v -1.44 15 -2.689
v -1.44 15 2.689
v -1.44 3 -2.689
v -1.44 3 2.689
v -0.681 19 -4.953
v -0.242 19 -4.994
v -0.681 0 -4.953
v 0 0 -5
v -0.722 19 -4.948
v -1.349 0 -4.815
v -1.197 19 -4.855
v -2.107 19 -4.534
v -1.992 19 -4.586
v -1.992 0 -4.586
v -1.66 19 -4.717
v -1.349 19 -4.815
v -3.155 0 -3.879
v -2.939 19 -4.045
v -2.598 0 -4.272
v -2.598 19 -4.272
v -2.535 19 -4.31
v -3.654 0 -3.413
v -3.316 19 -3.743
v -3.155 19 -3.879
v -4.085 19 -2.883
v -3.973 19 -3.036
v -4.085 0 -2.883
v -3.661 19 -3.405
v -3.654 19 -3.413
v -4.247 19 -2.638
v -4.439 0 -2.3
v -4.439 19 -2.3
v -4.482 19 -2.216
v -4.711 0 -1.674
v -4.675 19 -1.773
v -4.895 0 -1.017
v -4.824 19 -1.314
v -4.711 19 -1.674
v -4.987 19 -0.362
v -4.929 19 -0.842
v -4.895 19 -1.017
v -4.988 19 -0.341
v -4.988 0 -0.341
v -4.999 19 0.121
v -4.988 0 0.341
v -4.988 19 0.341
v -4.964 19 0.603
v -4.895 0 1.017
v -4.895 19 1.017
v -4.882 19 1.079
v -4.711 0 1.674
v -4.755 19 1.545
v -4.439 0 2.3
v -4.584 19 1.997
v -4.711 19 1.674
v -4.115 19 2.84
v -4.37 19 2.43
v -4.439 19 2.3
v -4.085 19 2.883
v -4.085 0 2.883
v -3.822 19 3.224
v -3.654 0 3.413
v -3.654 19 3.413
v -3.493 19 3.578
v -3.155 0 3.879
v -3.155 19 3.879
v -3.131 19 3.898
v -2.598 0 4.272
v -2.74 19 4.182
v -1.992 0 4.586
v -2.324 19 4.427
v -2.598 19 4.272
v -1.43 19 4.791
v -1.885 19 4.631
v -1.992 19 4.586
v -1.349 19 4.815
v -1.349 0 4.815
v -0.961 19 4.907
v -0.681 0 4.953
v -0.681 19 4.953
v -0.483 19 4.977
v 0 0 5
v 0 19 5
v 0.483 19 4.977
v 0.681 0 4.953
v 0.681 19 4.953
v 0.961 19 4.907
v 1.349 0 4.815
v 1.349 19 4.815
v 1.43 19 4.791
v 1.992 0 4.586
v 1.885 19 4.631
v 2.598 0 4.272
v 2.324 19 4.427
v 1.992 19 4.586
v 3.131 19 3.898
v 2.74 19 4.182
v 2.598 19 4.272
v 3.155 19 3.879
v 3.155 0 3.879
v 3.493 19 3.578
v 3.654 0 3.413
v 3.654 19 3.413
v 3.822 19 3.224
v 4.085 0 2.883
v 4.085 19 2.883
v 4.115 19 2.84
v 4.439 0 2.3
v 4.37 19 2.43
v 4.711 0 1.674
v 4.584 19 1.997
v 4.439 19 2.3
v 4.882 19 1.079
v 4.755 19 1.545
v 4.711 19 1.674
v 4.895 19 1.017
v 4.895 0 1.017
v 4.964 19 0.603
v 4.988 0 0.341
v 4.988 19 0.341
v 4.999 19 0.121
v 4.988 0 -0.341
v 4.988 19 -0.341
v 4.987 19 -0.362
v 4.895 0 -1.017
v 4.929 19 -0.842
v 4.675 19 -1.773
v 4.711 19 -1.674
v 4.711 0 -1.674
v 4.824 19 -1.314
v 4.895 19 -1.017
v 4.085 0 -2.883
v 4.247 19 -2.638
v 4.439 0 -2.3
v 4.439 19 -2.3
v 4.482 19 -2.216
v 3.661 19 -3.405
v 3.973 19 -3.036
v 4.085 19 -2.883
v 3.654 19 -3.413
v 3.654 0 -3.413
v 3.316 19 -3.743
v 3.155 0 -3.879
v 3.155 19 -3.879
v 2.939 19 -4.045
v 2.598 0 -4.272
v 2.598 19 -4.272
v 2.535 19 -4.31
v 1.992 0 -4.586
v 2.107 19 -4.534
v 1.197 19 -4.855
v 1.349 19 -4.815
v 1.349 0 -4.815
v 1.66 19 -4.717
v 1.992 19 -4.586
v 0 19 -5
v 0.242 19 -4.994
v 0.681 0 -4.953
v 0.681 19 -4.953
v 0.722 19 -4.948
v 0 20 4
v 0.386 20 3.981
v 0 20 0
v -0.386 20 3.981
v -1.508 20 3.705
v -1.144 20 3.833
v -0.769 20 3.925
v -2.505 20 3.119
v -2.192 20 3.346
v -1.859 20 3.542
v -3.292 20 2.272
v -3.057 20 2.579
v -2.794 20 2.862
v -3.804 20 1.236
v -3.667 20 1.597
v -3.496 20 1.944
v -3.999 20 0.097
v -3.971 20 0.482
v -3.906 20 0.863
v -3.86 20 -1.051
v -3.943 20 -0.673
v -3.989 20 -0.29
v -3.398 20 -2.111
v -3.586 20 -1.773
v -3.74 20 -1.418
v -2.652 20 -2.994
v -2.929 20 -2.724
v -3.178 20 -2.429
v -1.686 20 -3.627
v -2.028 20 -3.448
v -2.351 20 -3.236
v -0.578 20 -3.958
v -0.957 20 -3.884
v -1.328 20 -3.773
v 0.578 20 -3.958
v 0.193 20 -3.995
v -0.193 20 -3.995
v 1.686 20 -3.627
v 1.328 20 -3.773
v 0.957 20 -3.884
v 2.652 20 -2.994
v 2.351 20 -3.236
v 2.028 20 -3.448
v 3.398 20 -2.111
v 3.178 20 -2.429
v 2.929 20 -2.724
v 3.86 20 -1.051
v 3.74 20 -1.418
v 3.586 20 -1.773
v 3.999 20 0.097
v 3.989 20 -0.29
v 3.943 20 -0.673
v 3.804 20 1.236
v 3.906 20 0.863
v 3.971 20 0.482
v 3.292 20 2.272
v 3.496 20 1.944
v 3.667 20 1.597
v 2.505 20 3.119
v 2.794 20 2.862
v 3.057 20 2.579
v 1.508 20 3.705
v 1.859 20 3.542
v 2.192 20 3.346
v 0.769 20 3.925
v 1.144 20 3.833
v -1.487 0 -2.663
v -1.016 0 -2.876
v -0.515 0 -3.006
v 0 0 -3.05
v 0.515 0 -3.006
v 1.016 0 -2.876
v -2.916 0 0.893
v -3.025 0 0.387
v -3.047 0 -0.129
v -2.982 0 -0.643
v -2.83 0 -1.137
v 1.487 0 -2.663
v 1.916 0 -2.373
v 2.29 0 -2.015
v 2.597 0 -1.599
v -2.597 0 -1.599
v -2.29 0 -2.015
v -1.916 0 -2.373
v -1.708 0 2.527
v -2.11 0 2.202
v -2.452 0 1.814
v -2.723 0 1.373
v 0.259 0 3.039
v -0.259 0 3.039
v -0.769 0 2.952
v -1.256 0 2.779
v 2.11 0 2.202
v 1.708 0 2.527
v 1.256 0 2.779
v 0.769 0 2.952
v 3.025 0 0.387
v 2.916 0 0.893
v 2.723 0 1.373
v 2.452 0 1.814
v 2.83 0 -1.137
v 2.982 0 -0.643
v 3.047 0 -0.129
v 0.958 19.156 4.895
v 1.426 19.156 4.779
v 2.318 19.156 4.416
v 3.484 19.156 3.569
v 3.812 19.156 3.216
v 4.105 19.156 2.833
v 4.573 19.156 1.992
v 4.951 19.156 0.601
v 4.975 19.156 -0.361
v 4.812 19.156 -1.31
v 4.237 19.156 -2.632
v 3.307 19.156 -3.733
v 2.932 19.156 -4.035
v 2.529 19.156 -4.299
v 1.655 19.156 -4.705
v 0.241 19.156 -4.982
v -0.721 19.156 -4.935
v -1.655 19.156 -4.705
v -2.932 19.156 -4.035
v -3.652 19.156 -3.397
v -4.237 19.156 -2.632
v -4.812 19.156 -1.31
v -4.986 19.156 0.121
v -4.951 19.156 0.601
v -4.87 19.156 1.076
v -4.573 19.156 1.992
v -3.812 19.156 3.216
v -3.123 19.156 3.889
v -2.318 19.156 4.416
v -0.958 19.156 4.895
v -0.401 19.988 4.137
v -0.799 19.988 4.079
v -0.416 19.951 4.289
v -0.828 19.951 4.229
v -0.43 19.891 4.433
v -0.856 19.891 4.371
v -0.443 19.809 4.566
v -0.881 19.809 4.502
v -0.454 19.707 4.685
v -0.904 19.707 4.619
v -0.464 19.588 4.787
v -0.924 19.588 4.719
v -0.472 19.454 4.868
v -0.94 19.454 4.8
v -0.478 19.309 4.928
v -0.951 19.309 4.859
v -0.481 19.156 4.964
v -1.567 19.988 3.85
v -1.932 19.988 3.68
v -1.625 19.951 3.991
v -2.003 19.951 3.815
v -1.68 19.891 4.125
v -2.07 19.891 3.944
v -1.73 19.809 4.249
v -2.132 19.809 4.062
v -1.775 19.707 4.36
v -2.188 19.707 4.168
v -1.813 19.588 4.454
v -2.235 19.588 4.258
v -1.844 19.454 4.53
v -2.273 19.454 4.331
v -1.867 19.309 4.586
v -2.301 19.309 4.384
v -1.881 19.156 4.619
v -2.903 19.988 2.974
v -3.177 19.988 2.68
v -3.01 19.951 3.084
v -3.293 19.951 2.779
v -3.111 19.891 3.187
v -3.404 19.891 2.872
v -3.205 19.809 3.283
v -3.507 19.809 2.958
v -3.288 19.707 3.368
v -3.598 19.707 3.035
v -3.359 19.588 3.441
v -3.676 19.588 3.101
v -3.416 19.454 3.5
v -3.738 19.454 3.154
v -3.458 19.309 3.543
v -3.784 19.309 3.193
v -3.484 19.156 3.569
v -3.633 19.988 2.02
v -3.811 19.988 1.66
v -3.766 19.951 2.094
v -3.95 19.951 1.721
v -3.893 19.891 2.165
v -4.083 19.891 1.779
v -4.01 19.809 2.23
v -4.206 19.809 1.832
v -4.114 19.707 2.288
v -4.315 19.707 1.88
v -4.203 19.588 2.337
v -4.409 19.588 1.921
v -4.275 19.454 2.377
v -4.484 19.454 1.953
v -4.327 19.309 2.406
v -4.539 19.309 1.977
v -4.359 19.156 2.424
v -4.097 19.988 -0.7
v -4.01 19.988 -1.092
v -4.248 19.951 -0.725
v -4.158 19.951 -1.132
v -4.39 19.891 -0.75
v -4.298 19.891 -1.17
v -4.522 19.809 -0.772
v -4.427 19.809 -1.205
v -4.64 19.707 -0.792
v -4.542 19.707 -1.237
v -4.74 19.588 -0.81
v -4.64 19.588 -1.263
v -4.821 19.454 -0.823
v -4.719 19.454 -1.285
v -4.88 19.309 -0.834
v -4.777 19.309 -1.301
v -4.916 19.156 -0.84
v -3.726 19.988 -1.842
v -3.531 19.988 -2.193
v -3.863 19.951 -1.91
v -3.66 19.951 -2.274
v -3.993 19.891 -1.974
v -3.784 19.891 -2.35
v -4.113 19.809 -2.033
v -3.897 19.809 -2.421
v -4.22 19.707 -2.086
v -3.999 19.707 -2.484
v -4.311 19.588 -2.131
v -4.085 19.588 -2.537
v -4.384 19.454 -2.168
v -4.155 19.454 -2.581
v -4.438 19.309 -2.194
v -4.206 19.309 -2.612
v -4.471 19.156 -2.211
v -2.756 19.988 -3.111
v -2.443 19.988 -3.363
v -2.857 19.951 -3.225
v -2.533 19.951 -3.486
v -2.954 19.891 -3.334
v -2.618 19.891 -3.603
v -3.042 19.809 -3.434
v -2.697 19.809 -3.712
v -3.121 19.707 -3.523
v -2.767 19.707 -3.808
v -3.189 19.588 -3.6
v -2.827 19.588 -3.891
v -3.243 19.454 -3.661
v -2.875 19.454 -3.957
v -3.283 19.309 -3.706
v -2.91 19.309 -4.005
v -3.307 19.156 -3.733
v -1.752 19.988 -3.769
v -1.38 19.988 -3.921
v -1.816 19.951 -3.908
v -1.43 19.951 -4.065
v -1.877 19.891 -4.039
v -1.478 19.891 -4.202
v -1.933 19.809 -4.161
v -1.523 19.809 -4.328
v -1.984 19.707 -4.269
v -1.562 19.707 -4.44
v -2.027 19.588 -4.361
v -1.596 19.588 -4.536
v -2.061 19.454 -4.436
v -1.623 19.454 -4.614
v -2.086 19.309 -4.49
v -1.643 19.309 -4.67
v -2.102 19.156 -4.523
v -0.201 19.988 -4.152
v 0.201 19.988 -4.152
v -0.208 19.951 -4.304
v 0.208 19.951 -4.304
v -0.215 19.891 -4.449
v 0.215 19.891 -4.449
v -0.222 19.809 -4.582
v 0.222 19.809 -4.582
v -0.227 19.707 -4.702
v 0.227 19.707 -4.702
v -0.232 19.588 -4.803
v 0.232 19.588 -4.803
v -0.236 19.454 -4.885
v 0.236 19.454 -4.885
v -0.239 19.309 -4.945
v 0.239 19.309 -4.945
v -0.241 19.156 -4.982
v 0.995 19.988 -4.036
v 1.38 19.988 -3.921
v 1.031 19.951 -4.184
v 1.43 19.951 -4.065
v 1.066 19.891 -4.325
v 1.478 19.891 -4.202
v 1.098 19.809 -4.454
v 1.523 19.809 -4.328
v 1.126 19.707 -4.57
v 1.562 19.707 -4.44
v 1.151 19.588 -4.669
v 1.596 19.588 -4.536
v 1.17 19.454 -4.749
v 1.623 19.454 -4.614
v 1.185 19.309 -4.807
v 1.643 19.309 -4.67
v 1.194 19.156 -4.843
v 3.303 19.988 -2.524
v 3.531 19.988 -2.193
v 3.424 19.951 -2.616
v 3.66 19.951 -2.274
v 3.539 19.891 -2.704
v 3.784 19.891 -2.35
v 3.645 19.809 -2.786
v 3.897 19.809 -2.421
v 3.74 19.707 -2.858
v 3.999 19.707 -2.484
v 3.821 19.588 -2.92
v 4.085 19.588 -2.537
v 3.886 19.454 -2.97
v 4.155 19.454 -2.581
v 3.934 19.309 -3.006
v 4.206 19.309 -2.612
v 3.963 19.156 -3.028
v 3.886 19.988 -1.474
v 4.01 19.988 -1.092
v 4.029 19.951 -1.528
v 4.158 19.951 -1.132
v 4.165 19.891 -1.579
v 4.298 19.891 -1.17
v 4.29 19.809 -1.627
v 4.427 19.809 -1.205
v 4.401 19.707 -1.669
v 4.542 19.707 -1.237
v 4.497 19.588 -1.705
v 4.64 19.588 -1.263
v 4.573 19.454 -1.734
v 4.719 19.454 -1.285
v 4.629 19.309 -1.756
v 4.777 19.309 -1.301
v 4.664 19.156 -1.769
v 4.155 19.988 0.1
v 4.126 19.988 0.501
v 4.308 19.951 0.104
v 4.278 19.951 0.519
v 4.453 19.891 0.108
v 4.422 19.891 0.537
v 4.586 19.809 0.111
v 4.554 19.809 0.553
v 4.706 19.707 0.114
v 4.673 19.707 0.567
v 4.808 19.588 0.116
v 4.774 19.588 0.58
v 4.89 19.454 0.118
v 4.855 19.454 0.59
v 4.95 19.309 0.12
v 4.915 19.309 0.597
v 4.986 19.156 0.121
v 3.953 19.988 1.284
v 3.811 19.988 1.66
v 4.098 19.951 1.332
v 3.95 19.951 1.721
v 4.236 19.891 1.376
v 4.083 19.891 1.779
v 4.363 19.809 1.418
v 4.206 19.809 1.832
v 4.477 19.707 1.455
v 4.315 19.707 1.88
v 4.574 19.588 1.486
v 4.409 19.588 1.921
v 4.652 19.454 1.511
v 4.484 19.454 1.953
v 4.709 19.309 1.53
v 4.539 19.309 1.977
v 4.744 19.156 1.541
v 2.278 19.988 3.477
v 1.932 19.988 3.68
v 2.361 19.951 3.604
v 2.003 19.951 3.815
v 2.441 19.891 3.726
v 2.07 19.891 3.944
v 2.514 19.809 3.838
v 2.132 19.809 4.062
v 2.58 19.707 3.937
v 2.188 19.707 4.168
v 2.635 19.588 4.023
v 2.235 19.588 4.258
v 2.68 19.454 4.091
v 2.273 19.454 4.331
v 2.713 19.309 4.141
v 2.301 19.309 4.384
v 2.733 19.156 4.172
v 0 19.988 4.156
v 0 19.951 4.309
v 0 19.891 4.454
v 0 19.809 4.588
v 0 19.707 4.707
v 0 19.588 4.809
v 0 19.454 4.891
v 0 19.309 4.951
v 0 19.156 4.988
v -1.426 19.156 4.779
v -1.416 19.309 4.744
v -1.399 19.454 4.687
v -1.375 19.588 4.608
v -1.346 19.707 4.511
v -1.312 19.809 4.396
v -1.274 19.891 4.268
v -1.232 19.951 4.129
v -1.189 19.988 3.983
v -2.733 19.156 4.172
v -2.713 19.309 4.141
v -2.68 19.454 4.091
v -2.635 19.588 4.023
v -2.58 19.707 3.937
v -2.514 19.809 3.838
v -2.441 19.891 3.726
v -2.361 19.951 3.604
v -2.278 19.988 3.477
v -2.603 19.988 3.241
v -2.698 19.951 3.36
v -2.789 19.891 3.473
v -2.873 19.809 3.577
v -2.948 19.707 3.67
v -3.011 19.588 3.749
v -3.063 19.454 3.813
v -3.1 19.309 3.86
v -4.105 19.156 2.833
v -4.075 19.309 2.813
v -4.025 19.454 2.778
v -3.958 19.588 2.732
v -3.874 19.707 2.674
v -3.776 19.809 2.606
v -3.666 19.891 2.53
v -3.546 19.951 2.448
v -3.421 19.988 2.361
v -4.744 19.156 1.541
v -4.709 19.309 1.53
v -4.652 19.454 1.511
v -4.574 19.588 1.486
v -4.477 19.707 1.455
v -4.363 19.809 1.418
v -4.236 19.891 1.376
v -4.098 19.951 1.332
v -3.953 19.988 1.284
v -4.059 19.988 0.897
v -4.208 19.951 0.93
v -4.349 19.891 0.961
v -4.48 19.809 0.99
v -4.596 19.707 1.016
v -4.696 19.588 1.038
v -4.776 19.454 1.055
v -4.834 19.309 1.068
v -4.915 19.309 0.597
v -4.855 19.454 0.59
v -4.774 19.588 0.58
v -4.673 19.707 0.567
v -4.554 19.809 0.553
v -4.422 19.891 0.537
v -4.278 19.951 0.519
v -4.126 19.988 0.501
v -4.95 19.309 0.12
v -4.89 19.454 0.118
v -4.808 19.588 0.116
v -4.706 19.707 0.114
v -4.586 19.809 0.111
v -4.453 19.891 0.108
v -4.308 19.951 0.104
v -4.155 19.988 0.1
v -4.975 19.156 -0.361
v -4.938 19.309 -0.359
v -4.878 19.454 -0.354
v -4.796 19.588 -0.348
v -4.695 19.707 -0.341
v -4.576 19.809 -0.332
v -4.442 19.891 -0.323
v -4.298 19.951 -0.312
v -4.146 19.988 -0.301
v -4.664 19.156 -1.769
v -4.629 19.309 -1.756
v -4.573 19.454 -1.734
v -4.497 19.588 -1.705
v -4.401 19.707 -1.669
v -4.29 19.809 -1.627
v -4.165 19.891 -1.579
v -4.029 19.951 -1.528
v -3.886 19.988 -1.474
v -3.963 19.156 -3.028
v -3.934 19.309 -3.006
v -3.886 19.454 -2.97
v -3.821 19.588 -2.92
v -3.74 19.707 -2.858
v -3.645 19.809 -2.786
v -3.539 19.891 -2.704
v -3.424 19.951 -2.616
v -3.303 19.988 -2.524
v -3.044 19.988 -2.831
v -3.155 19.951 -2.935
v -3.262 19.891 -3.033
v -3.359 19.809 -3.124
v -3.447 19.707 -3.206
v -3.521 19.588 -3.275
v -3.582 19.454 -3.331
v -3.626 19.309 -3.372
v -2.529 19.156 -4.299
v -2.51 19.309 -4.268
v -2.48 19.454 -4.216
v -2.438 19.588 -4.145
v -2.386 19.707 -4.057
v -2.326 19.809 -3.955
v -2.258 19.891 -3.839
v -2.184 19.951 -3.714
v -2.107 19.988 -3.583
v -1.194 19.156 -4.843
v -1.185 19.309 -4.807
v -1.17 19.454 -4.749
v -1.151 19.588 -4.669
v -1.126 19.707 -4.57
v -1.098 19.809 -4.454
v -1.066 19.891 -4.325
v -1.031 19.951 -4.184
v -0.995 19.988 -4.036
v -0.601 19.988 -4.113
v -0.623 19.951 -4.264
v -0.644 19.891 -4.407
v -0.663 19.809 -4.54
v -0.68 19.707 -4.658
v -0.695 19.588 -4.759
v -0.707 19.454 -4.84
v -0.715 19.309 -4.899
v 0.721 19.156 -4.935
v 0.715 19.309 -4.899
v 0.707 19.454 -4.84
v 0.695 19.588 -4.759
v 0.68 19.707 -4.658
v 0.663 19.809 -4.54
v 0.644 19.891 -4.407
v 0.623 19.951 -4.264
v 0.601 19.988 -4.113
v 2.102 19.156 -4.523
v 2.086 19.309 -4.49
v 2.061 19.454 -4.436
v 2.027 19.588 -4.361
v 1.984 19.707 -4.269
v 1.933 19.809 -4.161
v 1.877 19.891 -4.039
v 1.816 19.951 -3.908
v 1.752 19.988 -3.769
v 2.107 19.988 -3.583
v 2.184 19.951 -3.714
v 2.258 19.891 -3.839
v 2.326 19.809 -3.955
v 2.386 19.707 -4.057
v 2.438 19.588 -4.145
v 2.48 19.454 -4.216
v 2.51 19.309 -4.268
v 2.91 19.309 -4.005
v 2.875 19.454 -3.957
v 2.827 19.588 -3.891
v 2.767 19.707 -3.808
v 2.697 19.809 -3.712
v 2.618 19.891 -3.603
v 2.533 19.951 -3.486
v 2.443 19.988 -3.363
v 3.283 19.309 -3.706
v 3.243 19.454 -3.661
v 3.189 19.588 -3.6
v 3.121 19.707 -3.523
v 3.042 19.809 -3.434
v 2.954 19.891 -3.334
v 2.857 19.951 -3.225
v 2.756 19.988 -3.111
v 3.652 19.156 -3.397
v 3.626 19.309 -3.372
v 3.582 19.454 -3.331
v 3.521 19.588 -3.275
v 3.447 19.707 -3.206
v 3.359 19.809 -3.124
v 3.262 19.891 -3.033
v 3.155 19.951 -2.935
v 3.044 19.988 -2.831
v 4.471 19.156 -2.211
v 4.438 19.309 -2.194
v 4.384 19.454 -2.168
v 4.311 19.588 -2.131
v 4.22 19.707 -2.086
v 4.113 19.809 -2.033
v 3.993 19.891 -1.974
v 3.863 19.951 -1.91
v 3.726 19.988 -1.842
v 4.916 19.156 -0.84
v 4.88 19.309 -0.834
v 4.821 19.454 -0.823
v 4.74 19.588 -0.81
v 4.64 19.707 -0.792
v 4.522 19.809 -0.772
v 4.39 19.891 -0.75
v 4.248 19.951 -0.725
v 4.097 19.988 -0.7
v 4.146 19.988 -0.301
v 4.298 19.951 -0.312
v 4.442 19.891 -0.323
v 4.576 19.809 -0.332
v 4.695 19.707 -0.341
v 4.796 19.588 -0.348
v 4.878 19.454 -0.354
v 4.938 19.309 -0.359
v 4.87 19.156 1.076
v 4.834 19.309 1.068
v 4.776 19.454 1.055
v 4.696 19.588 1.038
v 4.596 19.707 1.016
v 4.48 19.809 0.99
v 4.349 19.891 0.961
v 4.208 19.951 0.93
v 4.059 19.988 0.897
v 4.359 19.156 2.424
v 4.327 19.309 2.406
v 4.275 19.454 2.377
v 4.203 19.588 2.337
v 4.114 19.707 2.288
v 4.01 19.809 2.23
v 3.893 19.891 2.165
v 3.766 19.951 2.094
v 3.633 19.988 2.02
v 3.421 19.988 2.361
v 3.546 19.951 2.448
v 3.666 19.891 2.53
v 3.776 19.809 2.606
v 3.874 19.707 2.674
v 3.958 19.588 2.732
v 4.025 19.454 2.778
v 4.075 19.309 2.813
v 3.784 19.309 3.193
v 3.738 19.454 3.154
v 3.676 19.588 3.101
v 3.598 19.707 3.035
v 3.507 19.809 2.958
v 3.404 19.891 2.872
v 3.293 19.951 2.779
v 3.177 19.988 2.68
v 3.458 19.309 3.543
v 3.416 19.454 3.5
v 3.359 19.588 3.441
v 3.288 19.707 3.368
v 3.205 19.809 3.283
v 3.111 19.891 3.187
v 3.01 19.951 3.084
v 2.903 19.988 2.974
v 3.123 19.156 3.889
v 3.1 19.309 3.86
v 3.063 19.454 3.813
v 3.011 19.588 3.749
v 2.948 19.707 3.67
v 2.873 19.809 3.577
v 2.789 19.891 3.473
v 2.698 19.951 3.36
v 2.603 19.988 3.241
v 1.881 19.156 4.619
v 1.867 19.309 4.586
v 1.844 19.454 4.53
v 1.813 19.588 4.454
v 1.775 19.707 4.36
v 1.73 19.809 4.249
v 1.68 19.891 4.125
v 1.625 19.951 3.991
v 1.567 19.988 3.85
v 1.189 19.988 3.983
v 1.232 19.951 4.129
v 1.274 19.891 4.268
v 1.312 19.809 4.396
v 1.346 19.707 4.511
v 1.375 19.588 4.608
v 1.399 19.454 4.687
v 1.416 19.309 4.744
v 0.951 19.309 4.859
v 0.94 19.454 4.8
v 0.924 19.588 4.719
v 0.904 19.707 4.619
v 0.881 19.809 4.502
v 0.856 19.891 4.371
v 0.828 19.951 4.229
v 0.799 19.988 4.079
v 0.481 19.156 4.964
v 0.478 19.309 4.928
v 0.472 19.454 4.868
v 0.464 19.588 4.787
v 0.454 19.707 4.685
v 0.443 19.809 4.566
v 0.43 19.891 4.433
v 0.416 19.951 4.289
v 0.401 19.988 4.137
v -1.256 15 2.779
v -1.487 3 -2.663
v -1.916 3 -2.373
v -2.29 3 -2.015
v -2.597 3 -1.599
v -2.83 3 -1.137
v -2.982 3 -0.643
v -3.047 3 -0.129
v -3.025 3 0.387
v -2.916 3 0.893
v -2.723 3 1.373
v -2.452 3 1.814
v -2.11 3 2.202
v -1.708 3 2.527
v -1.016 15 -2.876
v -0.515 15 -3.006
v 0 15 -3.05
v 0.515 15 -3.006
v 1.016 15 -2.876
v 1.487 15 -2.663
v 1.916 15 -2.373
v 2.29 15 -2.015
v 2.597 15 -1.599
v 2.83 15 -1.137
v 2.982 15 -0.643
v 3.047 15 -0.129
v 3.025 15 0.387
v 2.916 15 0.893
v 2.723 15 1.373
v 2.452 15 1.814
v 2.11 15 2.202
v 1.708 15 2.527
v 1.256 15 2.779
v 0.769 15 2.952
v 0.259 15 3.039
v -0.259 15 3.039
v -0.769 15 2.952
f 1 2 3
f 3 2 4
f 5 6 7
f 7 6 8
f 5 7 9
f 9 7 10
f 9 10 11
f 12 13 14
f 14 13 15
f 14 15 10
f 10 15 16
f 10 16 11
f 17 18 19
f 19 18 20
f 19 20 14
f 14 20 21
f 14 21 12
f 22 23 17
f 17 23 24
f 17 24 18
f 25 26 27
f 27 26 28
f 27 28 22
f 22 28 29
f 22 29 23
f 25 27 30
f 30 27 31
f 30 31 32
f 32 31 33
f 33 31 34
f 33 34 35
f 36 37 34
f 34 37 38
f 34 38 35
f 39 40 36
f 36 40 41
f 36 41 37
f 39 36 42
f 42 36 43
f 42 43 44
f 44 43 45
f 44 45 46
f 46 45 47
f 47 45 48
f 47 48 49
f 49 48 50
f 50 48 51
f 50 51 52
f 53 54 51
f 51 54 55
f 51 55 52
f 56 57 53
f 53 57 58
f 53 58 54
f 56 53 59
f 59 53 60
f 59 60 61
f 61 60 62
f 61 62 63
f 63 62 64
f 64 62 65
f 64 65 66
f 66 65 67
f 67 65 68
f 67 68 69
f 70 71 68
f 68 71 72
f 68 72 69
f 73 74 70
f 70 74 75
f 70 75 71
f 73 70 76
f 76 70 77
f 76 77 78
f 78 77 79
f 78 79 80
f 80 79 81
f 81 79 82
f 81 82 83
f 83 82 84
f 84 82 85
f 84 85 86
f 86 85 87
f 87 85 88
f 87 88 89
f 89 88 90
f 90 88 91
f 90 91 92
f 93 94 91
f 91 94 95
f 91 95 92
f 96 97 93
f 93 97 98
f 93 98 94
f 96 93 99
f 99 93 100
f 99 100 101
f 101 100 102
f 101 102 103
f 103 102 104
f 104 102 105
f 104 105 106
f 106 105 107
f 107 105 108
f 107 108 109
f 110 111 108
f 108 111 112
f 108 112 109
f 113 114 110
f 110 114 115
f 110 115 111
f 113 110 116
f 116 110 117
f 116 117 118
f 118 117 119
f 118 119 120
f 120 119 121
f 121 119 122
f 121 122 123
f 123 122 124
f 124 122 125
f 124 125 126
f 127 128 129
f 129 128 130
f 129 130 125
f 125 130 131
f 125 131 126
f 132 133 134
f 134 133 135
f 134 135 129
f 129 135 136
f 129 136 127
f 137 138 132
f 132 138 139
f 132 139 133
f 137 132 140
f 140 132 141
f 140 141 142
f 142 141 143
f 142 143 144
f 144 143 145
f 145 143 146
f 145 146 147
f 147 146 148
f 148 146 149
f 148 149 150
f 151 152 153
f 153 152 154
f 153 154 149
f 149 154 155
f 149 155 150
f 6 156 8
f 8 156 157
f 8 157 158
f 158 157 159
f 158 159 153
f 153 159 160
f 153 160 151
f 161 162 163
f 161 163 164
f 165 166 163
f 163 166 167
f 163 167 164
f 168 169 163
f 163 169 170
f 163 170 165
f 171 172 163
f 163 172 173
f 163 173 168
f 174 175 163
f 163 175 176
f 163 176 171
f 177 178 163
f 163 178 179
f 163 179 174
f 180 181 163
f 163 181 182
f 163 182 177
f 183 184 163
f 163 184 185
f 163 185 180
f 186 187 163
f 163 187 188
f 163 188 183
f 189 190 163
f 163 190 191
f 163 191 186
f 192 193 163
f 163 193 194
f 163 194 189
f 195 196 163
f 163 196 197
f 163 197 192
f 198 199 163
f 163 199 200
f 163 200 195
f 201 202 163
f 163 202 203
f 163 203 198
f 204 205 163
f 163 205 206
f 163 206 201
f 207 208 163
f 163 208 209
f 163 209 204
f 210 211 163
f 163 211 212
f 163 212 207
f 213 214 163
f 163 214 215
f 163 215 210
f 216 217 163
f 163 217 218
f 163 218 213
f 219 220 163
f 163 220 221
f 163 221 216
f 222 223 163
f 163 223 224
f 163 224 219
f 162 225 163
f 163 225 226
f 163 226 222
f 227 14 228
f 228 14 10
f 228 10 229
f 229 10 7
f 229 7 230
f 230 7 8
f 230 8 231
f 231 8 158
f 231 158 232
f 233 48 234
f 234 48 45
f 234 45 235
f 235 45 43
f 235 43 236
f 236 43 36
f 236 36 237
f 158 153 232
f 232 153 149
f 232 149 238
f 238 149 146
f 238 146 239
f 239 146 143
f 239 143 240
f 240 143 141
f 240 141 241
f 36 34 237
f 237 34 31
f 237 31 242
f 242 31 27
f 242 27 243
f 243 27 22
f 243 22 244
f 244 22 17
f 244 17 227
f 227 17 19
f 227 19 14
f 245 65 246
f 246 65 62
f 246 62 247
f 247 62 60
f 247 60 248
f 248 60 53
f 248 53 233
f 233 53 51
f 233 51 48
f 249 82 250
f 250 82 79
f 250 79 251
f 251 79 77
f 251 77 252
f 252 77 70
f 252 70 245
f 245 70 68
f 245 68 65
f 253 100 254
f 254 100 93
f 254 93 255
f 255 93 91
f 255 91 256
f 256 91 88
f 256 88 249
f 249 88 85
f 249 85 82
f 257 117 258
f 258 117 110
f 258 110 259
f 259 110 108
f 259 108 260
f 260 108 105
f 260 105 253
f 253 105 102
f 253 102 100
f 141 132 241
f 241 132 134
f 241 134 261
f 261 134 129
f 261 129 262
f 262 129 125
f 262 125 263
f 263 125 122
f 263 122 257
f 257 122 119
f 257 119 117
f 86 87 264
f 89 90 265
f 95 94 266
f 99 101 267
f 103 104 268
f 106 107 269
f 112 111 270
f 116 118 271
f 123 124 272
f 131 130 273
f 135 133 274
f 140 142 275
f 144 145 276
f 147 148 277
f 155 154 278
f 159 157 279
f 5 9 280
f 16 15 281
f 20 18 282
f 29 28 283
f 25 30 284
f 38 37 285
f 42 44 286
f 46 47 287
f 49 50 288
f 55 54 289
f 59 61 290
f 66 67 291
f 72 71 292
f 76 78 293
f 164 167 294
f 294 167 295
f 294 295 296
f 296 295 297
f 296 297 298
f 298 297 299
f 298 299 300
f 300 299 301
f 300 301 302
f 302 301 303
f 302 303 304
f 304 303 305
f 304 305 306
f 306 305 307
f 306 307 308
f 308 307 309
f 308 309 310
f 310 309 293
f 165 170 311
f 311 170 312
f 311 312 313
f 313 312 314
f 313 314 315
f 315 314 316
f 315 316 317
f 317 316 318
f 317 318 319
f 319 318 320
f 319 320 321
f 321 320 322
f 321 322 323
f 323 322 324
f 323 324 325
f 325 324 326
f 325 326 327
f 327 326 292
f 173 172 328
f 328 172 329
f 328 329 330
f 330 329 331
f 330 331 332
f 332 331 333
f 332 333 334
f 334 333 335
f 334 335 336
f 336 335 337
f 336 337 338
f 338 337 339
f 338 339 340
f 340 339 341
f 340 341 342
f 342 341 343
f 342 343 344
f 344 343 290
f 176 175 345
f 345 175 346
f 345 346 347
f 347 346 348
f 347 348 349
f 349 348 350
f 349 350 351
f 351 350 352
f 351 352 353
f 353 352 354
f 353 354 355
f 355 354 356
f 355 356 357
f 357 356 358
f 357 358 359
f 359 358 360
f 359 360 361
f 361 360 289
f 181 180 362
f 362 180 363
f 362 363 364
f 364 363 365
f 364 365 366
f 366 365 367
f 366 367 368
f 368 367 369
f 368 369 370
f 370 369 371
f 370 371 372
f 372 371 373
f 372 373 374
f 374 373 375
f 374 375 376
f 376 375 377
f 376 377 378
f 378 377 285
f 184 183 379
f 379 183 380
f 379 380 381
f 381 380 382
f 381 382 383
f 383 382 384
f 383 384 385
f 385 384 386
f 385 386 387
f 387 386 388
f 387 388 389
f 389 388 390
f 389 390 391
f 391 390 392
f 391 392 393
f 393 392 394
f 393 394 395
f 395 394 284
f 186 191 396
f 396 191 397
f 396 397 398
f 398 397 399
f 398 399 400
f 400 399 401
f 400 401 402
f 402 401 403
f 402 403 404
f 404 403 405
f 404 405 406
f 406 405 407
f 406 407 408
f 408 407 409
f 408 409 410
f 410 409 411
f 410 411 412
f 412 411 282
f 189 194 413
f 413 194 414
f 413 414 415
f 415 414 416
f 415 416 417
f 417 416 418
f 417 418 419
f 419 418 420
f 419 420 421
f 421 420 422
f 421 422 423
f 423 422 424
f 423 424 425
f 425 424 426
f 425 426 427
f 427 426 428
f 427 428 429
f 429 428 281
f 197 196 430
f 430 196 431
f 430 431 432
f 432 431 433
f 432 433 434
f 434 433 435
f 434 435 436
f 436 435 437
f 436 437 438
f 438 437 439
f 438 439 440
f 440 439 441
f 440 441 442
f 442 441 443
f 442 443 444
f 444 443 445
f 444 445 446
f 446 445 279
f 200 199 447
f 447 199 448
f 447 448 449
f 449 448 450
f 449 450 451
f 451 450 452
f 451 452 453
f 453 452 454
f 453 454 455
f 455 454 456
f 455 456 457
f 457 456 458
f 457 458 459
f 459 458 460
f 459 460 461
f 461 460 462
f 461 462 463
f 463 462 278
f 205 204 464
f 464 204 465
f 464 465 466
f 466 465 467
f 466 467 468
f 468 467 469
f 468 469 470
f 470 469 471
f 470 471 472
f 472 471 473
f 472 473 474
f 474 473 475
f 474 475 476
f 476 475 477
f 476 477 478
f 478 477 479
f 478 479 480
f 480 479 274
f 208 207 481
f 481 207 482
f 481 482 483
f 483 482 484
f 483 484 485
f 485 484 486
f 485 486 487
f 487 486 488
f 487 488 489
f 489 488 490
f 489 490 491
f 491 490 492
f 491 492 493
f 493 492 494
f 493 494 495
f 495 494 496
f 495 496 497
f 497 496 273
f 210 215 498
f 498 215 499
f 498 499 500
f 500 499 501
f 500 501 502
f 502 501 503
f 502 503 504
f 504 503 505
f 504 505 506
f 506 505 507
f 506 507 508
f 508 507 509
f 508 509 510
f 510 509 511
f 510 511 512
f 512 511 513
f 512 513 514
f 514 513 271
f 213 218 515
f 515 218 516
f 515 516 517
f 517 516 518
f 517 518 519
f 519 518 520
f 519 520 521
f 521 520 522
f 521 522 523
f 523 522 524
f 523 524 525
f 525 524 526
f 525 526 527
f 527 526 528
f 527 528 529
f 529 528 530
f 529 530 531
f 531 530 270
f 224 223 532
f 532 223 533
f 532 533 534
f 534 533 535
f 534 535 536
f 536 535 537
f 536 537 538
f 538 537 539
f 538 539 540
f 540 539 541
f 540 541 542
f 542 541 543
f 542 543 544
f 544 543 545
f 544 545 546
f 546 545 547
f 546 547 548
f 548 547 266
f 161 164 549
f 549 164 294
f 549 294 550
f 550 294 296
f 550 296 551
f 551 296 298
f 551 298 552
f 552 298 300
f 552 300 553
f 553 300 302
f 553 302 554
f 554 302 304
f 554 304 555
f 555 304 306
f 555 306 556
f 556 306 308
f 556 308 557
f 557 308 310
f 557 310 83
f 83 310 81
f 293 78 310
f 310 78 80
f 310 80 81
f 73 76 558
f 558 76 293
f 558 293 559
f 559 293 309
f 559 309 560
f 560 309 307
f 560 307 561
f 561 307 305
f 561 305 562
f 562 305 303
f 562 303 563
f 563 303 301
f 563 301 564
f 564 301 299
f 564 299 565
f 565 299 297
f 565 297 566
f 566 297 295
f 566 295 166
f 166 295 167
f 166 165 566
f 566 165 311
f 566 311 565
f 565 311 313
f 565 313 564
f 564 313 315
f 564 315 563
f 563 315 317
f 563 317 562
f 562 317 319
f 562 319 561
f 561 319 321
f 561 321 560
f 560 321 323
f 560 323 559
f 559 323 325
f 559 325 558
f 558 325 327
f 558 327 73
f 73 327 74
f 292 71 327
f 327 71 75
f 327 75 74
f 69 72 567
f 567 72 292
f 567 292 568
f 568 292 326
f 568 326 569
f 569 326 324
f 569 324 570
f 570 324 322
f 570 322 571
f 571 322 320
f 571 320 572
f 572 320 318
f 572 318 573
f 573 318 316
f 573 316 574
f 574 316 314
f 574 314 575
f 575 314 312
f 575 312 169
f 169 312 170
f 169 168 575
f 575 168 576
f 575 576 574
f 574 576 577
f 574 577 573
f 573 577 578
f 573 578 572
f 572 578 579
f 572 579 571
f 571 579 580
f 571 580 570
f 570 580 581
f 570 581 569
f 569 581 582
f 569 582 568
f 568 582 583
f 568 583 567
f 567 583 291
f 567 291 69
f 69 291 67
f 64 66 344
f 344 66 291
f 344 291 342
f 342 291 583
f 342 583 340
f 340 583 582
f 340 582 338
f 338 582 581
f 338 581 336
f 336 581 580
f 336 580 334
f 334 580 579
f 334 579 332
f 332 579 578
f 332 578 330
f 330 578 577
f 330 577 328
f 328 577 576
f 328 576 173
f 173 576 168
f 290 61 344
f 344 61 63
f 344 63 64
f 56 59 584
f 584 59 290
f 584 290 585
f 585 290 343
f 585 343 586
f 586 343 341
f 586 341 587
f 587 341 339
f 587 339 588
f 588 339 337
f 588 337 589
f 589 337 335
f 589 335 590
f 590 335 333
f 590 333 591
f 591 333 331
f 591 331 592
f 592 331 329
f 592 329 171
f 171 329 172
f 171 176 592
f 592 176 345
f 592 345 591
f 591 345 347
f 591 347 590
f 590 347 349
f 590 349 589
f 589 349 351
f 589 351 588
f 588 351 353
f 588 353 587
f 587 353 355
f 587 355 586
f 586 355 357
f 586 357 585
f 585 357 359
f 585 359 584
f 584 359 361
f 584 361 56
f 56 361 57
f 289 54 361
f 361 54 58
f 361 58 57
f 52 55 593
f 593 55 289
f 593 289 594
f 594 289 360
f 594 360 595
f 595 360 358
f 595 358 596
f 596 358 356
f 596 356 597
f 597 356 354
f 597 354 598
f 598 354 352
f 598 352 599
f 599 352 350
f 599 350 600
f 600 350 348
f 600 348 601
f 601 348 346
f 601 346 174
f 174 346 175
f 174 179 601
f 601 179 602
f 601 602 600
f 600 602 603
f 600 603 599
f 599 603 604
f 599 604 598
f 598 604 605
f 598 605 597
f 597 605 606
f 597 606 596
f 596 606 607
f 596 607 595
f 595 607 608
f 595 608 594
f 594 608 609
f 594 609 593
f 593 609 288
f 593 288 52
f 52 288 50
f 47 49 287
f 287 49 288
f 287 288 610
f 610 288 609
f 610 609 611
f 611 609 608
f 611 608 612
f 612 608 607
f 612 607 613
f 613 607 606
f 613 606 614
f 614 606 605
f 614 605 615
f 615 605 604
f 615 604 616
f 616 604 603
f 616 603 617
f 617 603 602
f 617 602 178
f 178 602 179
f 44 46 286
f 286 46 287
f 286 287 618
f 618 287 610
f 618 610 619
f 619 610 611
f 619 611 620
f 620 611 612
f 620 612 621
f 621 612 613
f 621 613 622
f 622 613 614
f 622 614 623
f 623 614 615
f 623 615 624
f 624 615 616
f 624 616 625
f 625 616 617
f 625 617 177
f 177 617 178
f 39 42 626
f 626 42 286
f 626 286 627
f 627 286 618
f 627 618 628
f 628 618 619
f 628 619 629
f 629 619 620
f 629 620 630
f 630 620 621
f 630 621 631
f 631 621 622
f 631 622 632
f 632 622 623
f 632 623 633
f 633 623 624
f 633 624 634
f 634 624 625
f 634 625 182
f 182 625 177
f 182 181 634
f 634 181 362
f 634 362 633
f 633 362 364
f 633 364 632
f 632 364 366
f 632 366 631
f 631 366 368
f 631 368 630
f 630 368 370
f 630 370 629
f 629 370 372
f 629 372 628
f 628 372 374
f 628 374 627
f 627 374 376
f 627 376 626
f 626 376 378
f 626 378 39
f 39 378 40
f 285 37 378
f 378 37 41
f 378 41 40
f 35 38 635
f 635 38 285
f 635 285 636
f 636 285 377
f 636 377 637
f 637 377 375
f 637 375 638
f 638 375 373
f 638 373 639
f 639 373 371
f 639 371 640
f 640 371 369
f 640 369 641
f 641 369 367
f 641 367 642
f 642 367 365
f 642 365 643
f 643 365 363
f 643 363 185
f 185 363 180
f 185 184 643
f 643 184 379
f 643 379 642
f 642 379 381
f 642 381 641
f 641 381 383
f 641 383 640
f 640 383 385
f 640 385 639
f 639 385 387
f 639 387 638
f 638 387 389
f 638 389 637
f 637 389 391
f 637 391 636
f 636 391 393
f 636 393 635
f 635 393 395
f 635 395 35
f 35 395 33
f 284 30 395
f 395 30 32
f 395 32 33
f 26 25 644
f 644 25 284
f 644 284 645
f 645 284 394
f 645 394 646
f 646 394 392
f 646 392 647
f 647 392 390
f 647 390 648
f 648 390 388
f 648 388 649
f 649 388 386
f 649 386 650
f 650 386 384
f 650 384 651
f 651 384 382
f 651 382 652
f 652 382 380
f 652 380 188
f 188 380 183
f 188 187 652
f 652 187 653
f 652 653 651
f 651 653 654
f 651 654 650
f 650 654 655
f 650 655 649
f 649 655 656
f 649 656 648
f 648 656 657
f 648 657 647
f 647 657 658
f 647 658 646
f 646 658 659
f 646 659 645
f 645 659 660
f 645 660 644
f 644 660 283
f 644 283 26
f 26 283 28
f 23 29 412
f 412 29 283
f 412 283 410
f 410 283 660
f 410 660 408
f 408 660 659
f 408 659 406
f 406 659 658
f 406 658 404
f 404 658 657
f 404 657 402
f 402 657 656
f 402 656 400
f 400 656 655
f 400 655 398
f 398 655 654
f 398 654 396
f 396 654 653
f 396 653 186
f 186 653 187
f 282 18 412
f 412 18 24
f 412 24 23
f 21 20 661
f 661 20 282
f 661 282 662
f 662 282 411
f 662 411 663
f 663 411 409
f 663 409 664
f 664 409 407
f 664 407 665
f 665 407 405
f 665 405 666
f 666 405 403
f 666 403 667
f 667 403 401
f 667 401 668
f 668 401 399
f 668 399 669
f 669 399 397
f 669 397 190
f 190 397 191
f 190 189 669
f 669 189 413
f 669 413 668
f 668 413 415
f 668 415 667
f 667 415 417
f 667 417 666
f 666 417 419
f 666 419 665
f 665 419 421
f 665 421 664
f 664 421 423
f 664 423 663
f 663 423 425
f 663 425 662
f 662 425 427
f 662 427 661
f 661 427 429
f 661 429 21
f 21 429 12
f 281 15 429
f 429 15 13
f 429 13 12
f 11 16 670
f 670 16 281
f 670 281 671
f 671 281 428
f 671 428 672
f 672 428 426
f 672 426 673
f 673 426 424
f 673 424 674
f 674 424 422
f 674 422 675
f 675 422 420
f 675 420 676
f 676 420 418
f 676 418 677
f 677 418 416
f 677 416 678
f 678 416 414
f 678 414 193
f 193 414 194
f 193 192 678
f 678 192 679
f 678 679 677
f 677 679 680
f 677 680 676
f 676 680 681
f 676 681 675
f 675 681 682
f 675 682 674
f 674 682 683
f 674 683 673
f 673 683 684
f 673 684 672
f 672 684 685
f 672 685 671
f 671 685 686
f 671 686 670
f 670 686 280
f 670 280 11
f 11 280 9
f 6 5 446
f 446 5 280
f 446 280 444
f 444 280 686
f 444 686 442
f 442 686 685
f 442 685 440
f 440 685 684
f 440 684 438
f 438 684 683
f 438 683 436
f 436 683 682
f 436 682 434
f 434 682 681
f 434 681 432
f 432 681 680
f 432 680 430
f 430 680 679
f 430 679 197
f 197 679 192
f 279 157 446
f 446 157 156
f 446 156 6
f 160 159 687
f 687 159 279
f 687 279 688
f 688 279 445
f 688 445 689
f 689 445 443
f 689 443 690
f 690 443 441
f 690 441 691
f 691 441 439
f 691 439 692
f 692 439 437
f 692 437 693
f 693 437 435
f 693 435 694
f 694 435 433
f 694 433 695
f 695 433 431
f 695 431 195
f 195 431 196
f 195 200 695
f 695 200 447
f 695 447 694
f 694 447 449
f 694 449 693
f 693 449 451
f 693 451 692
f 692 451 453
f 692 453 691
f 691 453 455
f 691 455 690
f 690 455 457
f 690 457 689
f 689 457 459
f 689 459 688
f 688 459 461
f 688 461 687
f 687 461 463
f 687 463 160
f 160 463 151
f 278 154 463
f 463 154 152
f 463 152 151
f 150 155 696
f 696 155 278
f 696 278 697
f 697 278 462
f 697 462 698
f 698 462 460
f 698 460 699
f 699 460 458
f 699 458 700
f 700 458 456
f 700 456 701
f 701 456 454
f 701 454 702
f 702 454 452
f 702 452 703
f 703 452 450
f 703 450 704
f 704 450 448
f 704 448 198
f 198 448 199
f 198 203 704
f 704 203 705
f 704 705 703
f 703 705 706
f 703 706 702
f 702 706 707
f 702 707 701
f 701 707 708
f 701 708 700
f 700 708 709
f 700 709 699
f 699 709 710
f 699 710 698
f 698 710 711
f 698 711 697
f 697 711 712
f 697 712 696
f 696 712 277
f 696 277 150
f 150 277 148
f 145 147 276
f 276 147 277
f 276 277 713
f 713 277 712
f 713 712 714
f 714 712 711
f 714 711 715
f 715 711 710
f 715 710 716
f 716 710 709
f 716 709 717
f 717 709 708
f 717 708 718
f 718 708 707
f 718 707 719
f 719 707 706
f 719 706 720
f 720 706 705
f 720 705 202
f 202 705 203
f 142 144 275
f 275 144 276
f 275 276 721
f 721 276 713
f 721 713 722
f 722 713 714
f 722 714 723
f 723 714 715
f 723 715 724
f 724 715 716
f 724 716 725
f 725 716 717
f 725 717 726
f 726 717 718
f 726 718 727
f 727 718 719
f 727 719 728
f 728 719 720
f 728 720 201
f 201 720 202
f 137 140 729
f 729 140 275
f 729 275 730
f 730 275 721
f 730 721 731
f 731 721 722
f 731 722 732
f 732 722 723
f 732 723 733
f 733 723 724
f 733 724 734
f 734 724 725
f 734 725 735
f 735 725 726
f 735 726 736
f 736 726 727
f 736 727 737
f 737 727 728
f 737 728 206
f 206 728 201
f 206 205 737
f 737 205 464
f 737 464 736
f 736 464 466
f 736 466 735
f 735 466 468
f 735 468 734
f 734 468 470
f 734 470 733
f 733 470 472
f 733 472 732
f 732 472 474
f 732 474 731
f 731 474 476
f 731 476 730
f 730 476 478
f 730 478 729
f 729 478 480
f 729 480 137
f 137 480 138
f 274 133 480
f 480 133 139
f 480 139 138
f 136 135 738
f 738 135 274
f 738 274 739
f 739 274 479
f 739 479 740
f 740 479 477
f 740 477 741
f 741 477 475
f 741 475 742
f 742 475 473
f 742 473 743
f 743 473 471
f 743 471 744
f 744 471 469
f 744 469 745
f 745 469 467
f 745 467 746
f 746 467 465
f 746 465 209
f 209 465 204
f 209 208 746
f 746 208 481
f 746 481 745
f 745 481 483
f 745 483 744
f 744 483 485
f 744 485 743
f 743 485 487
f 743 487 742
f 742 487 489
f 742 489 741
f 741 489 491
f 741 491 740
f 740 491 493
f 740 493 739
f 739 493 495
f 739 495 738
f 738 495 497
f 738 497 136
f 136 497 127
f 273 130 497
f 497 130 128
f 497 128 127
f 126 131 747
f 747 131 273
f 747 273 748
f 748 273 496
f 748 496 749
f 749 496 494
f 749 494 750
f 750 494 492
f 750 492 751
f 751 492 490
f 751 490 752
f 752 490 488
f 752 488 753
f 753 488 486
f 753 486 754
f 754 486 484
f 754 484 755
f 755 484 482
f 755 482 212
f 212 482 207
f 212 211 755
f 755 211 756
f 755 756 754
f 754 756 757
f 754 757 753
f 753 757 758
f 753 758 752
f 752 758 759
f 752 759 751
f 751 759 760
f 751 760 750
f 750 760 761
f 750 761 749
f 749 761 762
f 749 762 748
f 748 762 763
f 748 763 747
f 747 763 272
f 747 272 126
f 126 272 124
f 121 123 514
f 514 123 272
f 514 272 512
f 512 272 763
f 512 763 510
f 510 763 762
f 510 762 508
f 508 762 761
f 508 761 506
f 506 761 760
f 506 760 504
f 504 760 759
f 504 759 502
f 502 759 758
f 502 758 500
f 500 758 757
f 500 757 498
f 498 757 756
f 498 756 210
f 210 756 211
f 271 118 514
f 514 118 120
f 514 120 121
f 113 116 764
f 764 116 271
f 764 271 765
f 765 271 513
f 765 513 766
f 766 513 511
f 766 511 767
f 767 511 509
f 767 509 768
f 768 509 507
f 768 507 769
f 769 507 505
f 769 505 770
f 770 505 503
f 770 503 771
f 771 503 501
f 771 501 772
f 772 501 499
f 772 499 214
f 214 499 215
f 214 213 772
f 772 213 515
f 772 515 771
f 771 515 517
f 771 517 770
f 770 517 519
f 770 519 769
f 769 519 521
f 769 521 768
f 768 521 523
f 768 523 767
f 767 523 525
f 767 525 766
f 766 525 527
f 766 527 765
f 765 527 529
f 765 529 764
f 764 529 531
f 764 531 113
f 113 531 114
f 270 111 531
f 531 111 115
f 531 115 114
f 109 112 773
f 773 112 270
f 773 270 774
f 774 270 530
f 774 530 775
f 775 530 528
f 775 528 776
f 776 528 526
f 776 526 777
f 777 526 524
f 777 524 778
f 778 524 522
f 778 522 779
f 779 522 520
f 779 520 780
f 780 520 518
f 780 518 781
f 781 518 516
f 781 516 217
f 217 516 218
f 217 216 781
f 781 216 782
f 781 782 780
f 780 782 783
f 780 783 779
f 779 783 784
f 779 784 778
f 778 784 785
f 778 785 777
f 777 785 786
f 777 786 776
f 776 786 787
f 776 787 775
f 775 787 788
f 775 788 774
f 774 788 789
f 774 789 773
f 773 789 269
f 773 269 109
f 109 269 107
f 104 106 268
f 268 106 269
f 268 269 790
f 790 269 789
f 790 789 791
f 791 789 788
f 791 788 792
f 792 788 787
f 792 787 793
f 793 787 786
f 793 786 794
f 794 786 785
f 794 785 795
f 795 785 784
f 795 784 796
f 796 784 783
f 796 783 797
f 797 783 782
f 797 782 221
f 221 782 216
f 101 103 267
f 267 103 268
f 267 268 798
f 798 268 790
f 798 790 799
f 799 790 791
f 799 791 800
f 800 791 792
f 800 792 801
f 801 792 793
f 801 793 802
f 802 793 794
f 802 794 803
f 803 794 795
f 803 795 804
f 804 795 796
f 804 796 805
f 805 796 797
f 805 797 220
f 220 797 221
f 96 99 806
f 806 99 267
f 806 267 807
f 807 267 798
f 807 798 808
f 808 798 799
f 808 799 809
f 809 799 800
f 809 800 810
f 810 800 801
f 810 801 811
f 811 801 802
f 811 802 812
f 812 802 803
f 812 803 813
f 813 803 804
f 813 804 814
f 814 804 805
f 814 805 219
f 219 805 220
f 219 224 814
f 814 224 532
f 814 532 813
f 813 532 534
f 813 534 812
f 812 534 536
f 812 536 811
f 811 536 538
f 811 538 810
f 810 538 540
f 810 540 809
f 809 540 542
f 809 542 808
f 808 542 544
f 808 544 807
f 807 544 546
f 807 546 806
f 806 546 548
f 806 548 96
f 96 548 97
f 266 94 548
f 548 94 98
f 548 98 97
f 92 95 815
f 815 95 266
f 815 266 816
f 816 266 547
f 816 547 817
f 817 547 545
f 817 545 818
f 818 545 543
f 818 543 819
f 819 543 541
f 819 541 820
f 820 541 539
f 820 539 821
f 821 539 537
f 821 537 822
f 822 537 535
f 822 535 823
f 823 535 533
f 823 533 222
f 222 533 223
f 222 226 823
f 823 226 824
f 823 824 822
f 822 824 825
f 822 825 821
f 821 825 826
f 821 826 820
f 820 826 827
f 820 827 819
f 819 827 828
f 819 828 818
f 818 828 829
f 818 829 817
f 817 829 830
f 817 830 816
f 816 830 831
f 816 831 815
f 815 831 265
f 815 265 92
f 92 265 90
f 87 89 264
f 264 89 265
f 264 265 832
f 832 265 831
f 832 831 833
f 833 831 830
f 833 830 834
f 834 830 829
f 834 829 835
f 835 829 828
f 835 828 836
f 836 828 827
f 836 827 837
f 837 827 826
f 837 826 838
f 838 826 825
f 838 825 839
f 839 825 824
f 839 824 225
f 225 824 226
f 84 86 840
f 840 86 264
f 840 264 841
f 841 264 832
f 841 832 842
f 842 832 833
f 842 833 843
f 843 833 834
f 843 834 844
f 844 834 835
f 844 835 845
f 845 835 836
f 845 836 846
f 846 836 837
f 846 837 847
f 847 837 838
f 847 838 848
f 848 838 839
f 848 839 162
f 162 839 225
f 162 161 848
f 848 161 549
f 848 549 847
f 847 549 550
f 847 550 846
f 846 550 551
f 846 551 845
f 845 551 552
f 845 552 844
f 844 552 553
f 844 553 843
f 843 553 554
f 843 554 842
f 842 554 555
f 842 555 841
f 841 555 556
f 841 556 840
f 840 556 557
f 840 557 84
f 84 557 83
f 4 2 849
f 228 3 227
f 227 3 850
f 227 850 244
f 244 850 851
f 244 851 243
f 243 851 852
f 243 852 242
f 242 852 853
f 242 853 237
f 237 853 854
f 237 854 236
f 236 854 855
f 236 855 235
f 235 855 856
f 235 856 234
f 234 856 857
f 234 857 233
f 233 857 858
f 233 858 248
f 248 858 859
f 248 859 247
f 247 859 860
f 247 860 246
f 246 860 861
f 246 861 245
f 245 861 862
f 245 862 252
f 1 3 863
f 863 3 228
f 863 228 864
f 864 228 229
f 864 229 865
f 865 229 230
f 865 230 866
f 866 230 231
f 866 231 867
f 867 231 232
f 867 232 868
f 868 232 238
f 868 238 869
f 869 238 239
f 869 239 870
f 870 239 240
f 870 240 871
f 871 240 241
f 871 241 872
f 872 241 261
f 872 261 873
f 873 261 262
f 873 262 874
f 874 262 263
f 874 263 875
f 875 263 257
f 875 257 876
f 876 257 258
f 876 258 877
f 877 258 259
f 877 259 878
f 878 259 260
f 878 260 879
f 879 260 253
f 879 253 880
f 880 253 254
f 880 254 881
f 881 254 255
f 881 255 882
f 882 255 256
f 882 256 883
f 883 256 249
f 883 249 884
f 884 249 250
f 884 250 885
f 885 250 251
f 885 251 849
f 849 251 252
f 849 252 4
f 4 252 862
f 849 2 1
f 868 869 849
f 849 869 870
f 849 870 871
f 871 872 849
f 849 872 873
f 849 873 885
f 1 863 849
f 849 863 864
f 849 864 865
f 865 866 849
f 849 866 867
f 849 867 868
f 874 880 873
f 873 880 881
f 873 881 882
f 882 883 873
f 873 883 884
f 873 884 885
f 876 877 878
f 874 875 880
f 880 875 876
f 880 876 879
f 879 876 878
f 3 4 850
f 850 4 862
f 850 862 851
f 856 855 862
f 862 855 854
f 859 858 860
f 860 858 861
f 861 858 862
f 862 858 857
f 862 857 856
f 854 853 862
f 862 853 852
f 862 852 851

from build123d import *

# Parameters (mm, degrees)
SKETCH1_R           = 5
BOSS_EXTRUDE1_DEPTH = 20
FILLET1_R           = 1
CUT_EXTRUDE1_DEPTH  = 15
SKETCH4_R           = 3.05
CUT_EXTRUDE2_DEPTH  = 3


with BuildPart() as part:
    # Sketch1 → Boss-Extrude1 (new body)
    with BuildSketch(Plane(origin=(0, 0, 0), x_dir=(1, 0, 0), z_dir=(0, 1, 0))):
        with Locations(Location((0, 0, 0), (0, 0, 270))):
            Circle(SKETCH1_R)
    extrude(amount=BOSS_EXTRUDE1_DEPTH)

    # Fillet1
    fillet1_edges = [part.edges().sort_by_distance(p)[0] for p in [
        (0, 20, -5),
    ]]
    fillet(fillet1_edges, radius=FILLET1_R)

    # Sketch2 → Cut-Extrude1 (cut)
    with BuildSketch(Plane(origin=(0, 0, 0), x_dir=(-1, 0, 0), z_dir=(0, -1, 0))):
        with BuildLine():
            ThreePointArc((1.44, 2.688661377), (-3.05, 0), (1.44, -2.688661377))
            Line((1.44, -2.688661377), (1.44, 2.688661377))
        make_face()
    extrude(amount=-CUT_EXTRUDE1_DEPTH, mode=Mode.SUBTRACT)

    # Sketch4 → Cut-Extrude2 (cut)
    with BuildSketch(Plane(origin=(0, 0, 0), x_dir=(-1, 0, 0), z_dir=(0, -1, 0))):
        with Locations(Location((0, 0, 0), (0, 0, 90))):
            Circle(SKETCH4_R)
    extrude(amount=-CUT_EXTRUDE2_DEPTH, mode=Mode.SUBTRACT)


solid = part.part
